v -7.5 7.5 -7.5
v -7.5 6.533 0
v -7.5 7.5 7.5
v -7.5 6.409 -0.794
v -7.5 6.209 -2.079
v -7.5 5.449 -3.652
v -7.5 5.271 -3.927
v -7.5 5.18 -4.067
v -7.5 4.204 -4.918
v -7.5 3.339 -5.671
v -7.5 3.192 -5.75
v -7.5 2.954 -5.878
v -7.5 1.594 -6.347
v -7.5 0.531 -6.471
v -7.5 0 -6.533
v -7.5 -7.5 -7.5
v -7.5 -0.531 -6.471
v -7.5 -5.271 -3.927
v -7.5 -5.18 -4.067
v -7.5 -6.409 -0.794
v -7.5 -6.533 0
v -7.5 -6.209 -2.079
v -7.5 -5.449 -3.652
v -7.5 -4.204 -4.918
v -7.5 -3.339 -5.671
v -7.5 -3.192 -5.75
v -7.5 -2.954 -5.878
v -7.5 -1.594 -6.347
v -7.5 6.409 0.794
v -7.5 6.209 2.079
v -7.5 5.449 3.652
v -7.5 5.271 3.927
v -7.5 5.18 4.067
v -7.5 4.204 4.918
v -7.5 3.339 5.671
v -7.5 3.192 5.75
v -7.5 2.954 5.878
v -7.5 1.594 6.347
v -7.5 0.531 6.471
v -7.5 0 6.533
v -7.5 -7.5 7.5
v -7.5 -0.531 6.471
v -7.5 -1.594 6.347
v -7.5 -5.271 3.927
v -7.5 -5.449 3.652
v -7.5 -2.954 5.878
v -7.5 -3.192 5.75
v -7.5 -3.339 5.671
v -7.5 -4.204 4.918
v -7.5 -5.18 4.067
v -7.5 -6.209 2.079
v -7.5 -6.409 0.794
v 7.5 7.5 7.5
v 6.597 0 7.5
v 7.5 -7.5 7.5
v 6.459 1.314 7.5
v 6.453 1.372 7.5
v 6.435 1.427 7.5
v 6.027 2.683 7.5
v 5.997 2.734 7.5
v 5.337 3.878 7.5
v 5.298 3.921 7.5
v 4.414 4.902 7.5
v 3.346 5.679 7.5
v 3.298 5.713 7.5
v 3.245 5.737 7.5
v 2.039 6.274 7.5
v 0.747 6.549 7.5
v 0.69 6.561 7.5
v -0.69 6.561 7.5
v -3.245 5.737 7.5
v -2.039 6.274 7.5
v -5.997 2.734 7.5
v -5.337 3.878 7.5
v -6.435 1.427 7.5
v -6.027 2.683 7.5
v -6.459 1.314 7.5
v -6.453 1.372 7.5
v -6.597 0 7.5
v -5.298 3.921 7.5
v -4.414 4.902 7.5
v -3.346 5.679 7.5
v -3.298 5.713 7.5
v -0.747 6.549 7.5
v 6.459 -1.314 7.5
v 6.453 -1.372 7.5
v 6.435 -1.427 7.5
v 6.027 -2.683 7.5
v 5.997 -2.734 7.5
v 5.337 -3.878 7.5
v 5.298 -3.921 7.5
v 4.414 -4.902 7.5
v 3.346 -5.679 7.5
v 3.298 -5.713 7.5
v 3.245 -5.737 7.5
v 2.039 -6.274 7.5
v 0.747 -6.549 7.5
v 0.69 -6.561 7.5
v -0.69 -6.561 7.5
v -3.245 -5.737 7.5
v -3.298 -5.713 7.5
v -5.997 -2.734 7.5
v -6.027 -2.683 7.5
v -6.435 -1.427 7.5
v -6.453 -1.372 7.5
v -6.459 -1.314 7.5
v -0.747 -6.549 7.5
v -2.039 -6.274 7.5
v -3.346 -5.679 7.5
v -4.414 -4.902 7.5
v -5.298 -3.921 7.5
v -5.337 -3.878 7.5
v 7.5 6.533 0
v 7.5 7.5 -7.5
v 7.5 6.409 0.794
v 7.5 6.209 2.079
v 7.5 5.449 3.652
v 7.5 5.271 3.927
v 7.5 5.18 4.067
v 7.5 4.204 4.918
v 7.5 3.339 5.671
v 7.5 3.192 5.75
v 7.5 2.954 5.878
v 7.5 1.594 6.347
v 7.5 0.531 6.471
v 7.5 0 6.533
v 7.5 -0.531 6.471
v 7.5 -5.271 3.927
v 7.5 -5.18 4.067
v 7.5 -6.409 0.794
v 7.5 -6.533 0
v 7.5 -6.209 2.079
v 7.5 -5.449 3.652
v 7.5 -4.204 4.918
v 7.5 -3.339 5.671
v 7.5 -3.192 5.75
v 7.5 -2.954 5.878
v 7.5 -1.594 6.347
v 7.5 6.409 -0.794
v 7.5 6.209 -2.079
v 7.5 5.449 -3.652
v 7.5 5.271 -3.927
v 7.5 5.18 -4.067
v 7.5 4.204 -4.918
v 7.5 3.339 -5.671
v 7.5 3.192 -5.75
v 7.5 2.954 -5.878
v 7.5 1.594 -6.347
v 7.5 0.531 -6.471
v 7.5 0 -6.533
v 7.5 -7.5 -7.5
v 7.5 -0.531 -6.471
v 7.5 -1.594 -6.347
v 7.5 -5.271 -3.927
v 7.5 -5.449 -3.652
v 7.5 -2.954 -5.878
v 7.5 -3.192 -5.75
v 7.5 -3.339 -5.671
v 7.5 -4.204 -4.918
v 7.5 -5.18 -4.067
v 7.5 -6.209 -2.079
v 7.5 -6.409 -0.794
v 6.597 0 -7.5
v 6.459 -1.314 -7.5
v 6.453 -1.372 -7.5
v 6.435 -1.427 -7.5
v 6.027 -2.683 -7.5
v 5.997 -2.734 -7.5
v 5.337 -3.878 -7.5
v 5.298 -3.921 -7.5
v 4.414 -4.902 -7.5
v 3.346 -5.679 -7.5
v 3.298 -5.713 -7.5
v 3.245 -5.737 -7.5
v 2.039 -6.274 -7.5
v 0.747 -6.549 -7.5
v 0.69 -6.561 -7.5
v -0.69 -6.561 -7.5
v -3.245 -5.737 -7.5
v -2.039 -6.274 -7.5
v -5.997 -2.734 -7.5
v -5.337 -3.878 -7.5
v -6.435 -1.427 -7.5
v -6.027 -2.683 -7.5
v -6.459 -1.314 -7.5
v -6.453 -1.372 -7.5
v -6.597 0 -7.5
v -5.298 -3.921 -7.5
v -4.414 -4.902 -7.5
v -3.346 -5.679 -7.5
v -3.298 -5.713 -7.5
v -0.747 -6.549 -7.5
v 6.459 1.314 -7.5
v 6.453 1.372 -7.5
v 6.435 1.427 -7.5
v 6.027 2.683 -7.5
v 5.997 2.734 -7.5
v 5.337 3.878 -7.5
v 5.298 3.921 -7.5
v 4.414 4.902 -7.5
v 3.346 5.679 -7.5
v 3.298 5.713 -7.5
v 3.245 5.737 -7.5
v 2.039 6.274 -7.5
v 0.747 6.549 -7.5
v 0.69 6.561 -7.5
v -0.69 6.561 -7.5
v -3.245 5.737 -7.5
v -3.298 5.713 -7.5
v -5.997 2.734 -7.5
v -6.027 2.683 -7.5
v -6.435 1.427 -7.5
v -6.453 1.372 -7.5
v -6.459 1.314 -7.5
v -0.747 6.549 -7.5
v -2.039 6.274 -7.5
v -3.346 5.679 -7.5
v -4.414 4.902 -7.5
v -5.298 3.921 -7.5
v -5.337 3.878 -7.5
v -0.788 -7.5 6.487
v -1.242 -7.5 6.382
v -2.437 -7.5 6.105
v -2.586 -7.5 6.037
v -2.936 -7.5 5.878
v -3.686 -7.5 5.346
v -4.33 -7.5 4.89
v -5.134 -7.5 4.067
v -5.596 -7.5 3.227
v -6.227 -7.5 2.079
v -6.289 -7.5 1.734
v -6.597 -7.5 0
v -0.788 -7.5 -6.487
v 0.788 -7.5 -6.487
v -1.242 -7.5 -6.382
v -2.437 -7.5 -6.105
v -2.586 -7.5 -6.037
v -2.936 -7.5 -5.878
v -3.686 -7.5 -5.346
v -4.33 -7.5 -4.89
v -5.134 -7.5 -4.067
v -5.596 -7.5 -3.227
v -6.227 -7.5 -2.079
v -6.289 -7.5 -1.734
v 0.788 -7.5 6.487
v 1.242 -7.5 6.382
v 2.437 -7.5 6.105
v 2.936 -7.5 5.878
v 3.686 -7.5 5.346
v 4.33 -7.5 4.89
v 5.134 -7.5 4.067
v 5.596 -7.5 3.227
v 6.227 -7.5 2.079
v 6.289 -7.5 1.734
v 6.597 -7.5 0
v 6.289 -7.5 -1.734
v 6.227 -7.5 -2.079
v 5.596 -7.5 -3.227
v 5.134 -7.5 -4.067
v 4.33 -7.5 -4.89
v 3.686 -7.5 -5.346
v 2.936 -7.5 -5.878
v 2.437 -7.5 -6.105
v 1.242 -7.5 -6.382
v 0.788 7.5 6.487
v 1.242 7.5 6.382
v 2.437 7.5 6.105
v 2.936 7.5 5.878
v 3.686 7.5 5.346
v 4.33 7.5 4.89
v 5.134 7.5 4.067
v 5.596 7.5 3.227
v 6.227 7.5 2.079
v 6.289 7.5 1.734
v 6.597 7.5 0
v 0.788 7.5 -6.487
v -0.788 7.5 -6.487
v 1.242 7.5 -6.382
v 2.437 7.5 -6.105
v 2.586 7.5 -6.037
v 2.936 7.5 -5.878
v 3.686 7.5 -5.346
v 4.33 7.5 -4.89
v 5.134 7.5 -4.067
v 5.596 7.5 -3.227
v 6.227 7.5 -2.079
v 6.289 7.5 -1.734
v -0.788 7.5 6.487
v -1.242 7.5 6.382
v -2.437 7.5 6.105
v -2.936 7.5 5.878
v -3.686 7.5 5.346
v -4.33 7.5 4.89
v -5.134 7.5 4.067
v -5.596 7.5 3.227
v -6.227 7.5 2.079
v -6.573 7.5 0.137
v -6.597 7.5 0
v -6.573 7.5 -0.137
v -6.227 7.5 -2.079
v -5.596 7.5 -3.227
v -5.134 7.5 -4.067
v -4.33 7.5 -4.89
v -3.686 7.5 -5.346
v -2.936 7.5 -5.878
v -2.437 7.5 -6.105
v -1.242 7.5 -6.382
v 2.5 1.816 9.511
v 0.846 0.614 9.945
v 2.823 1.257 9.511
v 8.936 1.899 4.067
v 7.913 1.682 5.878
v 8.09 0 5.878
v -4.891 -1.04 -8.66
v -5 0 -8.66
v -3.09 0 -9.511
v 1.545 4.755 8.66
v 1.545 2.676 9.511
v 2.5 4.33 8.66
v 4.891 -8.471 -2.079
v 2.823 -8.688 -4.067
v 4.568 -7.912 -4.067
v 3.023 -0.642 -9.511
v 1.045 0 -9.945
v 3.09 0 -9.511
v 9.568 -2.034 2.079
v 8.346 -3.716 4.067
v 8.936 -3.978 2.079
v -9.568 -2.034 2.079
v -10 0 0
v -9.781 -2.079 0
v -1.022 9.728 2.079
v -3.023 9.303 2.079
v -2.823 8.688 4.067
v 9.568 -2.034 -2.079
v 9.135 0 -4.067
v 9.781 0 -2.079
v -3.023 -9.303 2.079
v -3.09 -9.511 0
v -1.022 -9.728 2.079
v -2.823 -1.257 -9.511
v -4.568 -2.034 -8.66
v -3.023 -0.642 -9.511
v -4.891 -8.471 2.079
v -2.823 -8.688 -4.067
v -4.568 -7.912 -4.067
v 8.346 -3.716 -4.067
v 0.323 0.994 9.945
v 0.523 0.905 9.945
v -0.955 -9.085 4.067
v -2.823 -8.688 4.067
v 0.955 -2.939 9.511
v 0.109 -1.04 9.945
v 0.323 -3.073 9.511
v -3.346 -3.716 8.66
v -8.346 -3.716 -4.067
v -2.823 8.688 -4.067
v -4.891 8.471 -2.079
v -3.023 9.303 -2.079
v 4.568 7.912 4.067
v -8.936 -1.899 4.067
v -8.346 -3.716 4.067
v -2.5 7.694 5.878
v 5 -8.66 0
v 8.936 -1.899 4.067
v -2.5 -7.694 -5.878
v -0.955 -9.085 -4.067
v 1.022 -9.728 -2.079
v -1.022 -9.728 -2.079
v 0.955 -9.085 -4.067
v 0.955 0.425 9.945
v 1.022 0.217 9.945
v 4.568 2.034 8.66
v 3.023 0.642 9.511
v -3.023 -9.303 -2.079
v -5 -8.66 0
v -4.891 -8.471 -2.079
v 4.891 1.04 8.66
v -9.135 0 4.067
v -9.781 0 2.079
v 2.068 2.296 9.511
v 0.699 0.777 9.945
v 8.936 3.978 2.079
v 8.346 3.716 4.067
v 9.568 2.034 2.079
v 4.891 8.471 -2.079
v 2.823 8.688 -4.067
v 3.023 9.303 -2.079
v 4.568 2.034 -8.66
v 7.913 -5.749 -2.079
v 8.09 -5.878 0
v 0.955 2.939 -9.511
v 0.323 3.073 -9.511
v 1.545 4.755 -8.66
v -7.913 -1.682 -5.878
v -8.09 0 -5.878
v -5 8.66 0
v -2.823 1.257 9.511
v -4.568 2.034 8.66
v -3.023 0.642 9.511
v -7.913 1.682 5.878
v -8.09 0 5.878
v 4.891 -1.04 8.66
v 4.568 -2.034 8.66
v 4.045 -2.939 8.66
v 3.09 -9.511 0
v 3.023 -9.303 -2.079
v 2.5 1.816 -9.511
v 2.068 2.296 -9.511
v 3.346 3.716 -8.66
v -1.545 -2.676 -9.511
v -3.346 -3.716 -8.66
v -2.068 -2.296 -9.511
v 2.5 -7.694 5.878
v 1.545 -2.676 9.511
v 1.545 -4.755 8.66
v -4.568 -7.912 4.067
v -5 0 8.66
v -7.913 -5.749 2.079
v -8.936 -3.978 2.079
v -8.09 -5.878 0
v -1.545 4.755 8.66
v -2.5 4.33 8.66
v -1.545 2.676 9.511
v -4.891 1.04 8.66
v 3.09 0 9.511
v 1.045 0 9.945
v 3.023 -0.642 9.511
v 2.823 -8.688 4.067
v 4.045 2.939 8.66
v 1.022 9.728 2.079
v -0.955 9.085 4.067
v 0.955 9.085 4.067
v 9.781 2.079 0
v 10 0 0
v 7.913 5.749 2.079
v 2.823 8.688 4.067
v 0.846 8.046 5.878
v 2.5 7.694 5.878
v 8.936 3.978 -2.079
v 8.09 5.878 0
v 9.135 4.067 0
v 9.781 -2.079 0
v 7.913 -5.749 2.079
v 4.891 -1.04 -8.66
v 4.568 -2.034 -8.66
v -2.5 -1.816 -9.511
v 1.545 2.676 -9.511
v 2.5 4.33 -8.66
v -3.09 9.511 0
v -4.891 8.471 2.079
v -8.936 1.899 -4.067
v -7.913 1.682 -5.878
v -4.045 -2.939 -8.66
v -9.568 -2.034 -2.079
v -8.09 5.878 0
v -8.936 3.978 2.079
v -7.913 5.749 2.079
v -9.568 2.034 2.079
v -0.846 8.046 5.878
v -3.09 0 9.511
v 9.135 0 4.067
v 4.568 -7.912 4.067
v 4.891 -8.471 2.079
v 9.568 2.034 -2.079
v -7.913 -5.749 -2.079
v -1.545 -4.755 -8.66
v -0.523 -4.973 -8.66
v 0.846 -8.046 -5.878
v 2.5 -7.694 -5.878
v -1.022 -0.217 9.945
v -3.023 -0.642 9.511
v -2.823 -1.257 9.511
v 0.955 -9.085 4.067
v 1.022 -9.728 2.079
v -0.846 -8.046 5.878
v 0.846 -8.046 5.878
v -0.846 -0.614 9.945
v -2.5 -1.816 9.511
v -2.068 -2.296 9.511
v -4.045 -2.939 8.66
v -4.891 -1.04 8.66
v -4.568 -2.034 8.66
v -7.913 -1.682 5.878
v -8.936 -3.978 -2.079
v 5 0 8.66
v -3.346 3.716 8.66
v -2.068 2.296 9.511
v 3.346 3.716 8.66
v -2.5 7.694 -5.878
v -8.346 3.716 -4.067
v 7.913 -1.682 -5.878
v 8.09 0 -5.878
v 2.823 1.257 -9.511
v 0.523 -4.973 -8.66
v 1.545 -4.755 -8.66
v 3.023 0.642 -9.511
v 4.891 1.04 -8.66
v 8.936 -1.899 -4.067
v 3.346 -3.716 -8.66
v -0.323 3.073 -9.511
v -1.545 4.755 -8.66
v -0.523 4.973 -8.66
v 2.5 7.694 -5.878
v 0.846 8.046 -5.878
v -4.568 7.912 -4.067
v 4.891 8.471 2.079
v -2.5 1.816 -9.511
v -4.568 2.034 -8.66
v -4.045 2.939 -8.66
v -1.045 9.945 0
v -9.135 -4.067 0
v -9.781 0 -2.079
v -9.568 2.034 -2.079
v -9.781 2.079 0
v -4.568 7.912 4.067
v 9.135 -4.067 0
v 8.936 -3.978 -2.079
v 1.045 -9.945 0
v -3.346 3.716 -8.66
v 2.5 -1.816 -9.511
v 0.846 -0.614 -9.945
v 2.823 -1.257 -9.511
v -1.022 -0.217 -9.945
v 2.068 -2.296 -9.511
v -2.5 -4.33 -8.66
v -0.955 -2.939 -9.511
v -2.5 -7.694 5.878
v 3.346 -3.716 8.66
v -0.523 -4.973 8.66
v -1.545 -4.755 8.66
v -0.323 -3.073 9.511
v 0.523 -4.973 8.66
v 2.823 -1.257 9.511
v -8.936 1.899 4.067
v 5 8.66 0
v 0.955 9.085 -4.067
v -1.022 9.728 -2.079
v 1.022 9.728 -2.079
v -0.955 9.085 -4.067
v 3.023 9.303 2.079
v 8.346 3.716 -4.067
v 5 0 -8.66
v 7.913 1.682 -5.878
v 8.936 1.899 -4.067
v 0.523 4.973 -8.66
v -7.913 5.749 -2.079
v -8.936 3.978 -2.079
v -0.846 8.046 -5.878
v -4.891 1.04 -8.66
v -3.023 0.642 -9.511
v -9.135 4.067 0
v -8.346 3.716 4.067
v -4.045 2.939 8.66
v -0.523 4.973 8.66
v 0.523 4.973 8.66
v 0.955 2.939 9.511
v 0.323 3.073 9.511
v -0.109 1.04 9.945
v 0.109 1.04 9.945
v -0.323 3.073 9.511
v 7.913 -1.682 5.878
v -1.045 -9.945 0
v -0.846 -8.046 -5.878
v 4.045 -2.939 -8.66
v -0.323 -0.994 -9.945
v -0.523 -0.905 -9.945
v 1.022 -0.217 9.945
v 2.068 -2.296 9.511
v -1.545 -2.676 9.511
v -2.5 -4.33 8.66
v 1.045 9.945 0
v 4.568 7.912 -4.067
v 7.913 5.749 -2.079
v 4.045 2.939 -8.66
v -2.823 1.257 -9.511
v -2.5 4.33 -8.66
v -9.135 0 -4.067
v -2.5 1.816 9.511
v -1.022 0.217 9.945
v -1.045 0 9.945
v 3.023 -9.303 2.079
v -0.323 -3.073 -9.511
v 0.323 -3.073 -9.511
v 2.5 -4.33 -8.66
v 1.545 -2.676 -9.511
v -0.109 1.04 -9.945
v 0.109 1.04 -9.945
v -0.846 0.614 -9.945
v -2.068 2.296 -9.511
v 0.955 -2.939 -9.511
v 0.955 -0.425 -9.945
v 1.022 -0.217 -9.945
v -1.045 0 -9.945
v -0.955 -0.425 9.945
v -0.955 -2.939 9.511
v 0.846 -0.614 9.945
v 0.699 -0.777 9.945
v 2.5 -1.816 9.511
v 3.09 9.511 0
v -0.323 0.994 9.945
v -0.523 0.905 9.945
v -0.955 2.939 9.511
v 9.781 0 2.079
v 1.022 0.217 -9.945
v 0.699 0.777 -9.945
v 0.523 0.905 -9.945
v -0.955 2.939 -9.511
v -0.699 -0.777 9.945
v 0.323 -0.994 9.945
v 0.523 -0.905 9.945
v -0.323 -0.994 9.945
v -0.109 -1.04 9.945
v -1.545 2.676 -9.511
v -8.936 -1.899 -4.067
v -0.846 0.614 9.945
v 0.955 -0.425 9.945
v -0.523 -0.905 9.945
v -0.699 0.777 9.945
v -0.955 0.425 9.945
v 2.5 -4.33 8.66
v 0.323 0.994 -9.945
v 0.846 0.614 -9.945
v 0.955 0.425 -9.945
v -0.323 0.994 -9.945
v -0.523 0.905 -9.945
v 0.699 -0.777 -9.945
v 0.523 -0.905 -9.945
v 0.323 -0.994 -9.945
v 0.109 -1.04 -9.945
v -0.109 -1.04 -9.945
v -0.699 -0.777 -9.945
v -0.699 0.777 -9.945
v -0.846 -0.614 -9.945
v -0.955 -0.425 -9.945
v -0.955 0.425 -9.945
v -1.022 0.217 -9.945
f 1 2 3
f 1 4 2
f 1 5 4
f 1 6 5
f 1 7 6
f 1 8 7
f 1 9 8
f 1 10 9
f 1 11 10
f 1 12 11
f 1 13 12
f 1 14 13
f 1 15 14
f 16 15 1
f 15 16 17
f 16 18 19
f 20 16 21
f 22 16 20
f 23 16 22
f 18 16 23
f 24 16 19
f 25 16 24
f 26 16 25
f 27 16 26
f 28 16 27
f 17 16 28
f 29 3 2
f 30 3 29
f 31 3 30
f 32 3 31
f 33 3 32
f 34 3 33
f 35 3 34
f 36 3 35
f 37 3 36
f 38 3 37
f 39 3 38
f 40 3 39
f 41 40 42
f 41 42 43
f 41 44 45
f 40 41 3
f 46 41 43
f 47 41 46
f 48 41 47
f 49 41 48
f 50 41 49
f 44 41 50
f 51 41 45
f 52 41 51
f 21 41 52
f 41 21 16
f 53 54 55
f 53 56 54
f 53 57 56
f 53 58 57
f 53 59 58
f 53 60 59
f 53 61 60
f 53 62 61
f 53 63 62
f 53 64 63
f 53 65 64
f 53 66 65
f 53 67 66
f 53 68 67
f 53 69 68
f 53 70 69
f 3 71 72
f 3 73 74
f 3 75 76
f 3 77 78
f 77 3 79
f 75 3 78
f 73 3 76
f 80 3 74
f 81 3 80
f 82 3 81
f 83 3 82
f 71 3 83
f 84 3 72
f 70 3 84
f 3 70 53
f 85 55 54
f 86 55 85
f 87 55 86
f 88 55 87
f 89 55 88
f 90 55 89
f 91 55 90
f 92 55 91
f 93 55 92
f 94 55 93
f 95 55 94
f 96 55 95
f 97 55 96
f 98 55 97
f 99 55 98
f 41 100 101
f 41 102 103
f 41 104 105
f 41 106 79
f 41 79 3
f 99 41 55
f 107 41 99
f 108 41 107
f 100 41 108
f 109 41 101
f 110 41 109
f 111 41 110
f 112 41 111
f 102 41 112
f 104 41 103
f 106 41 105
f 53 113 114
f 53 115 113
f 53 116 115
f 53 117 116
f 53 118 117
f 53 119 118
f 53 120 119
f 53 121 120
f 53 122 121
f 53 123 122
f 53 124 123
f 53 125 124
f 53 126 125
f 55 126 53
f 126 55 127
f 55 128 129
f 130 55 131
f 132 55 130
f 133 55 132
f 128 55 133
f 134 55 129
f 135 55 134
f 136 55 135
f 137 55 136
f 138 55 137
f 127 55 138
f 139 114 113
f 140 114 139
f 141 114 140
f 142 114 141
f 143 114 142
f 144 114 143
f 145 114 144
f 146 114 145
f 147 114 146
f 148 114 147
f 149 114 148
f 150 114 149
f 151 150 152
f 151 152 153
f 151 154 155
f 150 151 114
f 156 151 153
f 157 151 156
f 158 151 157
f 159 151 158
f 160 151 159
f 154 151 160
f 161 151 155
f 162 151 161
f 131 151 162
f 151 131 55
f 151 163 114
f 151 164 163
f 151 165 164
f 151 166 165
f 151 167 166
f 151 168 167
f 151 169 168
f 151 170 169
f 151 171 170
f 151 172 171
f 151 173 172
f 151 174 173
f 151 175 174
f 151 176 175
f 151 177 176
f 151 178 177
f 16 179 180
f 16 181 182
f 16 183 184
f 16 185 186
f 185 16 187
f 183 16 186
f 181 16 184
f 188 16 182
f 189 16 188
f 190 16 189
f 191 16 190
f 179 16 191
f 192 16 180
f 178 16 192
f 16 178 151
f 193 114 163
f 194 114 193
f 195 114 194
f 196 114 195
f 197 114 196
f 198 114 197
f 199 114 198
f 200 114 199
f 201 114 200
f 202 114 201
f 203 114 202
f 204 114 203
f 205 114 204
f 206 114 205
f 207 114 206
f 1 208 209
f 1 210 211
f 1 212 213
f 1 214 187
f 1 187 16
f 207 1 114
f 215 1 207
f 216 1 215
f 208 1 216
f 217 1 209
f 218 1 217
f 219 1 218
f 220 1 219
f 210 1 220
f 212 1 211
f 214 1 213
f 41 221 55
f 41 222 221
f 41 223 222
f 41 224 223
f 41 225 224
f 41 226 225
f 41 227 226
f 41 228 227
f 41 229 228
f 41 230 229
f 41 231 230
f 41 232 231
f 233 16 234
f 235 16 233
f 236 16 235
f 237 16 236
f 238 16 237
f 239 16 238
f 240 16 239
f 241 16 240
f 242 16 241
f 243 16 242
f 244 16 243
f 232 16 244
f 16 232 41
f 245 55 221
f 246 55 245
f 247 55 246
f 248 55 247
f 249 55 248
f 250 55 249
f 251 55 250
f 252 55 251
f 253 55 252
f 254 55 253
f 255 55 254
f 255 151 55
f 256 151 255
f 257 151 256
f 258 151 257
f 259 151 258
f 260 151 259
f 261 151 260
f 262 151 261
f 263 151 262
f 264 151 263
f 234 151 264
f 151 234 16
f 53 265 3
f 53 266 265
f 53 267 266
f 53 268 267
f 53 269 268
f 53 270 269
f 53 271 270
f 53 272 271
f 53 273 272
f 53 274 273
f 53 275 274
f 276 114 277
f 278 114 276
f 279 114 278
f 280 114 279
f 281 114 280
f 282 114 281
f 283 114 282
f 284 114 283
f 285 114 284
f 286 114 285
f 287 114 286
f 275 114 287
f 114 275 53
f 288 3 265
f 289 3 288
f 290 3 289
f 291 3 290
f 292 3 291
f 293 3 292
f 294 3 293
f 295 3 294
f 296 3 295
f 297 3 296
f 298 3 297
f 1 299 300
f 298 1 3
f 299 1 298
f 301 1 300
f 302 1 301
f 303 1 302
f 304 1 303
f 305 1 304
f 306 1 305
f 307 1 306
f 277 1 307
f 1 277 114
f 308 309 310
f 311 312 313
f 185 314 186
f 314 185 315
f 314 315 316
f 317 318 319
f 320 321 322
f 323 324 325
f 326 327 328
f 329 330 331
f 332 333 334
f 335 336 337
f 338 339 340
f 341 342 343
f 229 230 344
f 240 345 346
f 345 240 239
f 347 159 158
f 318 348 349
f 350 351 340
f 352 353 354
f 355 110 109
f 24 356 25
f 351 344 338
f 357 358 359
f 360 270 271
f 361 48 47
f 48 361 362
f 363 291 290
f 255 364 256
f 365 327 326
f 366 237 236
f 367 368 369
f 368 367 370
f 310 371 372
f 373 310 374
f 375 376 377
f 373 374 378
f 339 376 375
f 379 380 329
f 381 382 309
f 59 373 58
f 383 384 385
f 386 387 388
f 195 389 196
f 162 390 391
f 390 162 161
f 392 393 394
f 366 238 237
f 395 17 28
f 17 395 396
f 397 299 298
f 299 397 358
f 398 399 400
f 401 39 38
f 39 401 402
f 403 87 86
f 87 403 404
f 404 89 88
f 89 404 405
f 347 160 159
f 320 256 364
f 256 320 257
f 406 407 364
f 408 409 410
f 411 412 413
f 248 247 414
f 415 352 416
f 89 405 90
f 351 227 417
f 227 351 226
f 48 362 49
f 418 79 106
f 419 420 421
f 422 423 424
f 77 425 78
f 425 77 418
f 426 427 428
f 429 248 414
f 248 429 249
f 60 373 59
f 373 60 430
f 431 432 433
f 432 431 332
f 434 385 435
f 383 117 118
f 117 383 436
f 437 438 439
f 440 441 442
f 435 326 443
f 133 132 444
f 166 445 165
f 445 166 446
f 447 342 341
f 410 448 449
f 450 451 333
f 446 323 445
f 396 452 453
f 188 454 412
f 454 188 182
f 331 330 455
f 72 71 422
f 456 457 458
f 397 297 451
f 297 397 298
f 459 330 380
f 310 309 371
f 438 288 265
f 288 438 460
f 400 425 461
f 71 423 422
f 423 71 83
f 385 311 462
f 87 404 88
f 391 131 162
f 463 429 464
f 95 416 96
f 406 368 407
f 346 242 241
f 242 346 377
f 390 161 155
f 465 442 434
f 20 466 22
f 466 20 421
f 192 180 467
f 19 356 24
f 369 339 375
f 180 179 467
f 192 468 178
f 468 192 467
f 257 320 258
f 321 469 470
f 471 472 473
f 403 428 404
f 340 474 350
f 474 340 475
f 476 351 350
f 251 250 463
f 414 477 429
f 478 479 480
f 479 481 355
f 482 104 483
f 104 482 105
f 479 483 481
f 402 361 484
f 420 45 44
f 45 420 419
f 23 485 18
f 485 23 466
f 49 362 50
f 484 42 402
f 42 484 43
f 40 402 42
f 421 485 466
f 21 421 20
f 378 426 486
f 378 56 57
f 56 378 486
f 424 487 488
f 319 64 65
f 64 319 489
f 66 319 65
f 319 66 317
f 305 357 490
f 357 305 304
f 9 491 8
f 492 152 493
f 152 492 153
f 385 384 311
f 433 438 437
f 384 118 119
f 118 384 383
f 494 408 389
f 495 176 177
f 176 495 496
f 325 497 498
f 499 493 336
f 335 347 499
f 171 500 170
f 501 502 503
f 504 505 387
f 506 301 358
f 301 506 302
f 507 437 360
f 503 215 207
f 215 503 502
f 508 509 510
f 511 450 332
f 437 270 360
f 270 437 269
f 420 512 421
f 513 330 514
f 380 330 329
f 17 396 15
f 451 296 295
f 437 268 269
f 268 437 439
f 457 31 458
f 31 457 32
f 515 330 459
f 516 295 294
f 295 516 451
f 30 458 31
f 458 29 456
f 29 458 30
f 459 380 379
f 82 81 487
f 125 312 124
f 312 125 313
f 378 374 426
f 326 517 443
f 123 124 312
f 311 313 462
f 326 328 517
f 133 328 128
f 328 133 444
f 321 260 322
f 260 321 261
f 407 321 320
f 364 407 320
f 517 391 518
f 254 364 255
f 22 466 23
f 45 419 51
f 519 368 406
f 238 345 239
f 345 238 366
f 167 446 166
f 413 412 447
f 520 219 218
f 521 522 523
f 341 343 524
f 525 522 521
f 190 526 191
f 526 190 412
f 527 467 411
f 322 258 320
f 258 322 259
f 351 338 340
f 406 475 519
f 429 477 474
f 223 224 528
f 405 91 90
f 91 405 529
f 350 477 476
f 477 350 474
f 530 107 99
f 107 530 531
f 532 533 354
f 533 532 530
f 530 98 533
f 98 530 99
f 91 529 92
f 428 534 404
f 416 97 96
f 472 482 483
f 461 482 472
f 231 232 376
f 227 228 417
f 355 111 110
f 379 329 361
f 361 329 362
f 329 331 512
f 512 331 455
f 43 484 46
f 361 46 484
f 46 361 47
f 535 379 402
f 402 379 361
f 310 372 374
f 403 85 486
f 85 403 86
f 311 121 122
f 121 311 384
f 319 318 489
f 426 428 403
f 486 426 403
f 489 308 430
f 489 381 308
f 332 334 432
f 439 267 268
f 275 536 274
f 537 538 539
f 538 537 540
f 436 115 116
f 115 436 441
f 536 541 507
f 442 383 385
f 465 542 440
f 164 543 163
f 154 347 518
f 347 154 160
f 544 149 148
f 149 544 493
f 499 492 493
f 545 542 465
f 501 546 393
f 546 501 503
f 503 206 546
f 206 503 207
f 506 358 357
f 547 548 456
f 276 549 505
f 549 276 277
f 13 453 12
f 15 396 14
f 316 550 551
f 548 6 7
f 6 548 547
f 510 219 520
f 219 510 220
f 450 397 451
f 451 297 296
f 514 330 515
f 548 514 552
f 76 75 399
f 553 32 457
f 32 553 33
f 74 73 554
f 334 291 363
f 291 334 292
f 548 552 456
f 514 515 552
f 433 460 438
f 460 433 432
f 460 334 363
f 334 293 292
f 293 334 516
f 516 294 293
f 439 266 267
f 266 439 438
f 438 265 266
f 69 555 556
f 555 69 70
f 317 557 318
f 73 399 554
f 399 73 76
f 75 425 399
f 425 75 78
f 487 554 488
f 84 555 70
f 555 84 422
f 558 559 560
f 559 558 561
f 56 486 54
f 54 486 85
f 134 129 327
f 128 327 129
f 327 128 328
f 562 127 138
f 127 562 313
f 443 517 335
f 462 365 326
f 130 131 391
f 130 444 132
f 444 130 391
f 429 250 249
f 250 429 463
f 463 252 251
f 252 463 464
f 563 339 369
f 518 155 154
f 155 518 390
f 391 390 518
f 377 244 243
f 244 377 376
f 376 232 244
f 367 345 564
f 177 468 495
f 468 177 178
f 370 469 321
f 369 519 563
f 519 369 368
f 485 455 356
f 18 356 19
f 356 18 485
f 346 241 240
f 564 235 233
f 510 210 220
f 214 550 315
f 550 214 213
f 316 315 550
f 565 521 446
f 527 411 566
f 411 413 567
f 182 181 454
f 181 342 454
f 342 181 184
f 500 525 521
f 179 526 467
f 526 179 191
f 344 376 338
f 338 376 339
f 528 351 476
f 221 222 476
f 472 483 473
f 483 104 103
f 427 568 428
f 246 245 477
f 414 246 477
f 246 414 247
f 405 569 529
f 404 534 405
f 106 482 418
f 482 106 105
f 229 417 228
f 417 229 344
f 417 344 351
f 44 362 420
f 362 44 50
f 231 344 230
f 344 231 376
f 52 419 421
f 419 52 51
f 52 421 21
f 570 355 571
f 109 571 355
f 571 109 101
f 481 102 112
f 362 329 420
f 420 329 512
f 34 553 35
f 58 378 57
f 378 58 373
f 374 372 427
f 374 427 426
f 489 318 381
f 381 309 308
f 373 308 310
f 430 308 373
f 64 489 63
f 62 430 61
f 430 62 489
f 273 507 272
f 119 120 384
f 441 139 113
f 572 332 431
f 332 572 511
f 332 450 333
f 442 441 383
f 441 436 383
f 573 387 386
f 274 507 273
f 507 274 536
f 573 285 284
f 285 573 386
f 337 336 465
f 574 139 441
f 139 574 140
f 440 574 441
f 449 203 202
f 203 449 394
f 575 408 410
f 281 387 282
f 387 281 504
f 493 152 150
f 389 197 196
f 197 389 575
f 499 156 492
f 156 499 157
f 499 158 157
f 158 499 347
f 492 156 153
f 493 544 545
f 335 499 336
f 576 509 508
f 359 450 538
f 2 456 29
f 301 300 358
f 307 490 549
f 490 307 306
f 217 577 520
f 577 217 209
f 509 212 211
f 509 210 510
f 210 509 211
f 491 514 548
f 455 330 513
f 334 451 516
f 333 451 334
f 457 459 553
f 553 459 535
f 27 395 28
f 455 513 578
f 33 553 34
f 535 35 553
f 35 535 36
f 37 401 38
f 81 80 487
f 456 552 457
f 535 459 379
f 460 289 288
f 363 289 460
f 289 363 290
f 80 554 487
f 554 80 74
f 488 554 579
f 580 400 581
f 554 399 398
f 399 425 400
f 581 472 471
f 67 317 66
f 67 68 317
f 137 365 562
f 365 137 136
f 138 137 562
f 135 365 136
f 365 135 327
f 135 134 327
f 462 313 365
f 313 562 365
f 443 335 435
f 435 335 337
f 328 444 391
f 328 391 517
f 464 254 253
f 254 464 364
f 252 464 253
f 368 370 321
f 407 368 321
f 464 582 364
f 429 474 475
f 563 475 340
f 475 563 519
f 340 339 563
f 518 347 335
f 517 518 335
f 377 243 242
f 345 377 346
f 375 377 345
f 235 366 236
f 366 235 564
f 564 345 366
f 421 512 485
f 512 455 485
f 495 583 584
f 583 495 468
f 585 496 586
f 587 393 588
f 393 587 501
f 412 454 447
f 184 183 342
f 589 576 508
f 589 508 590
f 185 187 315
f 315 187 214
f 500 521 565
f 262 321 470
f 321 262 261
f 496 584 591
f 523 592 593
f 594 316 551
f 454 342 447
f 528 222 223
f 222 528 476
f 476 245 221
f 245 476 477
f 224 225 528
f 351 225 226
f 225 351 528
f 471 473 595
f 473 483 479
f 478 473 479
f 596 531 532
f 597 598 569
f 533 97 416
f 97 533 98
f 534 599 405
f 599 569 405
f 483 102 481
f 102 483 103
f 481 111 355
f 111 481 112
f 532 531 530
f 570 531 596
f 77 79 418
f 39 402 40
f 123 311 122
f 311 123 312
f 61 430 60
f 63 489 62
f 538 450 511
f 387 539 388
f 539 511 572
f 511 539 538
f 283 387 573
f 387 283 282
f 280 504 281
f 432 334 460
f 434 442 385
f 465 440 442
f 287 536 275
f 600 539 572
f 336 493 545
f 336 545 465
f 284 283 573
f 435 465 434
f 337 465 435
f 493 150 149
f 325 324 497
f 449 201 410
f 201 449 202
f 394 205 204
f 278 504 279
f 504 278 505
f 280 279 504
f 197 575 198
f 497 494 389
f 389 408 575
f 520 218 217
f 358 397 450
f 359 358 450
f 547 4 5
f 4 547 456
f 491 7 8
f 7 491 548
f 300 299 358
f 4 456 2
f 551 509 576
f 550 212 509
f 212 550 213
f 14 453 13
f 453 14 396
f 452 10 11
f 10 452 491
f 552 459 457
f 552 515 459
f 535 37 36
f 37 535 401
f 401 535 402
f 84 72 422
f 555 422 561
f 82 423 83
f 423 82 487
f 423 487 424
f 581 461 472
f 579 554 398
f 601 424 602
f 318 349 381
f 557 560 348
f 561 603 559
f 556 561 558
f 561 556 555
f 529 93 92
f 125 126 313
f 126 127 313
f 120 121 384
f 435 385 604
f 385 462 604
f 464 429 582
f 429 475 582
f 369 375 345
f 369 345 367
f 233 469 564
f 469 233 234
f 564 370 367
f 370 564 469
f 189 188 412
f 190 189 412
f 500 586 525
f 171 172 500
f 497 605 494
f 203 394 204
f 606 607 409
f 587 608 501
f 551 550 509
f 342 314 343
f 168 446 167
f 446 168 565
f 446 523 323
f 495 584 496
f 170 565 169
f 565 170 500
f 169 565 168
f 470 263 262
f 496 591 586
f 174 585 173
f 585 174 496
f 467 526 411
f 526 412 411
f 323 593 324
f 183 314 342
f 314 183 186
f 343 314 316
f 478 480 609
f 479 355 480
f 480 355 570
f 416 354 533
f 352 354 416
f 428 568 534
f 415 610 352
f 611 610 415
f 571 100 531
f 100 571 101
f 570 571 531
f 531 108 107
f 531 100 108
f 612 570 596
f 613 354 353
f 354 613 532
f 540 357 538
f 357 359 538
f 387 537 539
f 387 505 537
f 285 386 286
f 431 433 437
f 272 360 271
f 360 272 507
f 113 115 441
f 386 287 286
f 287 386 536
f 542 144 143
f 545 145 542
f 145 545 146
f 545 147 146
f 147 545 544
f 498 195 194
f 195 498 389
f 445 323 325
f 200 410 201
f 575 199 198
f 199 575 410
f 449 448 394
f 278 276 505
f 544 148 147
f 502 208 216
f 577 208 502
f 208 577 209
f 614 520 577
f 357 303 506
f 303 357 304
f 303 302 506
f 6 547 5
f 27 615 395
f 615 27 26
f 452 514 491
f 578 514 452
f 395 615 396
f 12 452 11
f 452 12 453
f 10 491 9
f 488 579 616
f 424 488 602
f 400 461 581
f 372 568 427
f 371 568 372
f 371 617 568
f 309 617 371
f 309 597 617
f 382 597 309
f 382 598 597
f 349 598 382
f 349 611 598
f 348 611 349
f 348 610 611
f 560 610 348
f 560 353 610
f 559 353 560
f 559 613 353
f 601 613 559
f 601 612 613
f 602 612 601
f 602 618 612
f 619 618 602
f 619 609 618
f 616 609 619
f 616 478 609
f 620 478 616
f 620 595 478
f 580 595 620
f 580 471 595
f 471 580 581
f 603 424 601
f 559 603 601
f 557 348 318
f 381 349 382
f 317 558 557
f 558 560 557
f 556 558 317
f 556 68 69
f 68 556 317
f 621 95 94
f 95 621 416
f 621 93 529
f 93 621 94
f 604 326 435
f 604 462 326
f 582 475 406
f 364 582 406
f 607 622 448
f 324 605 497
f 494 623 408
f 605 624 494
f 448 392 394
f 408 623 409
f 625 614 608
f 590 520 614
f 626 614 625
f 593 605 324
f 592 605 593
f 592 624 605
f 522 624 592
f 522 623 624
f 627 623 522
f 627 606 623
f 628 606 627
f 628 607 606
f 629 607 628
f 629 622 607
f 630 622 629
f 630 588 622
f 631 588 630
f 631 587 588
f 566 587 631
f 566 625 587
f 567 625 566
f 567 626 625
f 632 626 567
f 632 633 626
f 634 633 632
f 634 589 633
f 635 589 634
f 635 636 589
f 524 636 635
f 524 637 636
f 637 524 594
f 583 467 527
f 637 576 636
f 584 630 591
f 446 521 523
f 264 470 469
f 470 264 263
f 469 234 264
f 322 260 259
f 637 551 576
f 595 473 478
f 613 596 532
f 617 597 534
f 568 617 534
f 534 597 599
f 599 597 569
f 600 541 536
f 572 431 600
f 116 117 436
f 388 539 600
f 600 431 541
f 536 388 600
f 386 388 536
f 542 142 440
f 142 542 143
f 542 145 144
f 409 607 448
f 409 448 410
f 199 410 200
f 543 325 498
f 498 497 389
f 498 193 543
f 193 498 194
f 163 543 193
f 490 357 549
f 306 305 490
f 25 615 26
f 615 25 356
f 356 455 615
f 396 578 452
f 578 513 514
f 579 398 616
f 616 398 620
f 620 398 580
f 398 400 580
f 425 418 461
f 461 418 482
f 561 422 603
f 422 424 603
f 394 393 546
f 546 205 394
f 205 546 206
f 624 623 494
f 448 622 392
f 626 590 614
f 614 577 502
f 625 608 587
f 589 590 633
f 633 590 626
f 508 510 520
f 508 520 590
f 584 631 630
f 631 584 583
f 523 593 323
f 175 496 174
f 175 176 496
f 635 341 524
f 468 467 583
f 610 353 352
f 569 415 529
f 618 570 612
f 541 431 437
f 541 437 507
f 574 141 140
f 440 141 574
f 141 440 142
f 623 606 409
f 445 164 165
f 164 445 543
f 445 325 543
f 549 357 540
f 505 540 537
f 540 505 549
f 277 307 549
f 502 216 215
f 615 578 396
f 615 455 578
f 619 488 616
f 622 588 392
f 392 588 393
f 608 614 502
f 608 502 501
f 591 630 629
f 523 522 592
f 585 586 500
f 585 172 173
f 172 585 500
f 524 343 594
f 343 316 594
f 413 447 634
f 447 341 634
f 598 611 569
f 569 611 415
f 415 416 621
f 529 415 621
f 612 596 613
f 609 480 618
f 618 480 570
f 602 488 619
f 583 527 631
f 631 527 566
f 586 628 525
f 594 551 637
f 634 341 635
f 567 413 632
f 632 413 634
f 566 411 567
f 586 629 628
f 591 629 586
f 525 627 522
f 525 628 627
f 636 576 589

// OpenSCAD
// a.scad 
union() {
    cube(15, center=true);
    sphere(10);
}
